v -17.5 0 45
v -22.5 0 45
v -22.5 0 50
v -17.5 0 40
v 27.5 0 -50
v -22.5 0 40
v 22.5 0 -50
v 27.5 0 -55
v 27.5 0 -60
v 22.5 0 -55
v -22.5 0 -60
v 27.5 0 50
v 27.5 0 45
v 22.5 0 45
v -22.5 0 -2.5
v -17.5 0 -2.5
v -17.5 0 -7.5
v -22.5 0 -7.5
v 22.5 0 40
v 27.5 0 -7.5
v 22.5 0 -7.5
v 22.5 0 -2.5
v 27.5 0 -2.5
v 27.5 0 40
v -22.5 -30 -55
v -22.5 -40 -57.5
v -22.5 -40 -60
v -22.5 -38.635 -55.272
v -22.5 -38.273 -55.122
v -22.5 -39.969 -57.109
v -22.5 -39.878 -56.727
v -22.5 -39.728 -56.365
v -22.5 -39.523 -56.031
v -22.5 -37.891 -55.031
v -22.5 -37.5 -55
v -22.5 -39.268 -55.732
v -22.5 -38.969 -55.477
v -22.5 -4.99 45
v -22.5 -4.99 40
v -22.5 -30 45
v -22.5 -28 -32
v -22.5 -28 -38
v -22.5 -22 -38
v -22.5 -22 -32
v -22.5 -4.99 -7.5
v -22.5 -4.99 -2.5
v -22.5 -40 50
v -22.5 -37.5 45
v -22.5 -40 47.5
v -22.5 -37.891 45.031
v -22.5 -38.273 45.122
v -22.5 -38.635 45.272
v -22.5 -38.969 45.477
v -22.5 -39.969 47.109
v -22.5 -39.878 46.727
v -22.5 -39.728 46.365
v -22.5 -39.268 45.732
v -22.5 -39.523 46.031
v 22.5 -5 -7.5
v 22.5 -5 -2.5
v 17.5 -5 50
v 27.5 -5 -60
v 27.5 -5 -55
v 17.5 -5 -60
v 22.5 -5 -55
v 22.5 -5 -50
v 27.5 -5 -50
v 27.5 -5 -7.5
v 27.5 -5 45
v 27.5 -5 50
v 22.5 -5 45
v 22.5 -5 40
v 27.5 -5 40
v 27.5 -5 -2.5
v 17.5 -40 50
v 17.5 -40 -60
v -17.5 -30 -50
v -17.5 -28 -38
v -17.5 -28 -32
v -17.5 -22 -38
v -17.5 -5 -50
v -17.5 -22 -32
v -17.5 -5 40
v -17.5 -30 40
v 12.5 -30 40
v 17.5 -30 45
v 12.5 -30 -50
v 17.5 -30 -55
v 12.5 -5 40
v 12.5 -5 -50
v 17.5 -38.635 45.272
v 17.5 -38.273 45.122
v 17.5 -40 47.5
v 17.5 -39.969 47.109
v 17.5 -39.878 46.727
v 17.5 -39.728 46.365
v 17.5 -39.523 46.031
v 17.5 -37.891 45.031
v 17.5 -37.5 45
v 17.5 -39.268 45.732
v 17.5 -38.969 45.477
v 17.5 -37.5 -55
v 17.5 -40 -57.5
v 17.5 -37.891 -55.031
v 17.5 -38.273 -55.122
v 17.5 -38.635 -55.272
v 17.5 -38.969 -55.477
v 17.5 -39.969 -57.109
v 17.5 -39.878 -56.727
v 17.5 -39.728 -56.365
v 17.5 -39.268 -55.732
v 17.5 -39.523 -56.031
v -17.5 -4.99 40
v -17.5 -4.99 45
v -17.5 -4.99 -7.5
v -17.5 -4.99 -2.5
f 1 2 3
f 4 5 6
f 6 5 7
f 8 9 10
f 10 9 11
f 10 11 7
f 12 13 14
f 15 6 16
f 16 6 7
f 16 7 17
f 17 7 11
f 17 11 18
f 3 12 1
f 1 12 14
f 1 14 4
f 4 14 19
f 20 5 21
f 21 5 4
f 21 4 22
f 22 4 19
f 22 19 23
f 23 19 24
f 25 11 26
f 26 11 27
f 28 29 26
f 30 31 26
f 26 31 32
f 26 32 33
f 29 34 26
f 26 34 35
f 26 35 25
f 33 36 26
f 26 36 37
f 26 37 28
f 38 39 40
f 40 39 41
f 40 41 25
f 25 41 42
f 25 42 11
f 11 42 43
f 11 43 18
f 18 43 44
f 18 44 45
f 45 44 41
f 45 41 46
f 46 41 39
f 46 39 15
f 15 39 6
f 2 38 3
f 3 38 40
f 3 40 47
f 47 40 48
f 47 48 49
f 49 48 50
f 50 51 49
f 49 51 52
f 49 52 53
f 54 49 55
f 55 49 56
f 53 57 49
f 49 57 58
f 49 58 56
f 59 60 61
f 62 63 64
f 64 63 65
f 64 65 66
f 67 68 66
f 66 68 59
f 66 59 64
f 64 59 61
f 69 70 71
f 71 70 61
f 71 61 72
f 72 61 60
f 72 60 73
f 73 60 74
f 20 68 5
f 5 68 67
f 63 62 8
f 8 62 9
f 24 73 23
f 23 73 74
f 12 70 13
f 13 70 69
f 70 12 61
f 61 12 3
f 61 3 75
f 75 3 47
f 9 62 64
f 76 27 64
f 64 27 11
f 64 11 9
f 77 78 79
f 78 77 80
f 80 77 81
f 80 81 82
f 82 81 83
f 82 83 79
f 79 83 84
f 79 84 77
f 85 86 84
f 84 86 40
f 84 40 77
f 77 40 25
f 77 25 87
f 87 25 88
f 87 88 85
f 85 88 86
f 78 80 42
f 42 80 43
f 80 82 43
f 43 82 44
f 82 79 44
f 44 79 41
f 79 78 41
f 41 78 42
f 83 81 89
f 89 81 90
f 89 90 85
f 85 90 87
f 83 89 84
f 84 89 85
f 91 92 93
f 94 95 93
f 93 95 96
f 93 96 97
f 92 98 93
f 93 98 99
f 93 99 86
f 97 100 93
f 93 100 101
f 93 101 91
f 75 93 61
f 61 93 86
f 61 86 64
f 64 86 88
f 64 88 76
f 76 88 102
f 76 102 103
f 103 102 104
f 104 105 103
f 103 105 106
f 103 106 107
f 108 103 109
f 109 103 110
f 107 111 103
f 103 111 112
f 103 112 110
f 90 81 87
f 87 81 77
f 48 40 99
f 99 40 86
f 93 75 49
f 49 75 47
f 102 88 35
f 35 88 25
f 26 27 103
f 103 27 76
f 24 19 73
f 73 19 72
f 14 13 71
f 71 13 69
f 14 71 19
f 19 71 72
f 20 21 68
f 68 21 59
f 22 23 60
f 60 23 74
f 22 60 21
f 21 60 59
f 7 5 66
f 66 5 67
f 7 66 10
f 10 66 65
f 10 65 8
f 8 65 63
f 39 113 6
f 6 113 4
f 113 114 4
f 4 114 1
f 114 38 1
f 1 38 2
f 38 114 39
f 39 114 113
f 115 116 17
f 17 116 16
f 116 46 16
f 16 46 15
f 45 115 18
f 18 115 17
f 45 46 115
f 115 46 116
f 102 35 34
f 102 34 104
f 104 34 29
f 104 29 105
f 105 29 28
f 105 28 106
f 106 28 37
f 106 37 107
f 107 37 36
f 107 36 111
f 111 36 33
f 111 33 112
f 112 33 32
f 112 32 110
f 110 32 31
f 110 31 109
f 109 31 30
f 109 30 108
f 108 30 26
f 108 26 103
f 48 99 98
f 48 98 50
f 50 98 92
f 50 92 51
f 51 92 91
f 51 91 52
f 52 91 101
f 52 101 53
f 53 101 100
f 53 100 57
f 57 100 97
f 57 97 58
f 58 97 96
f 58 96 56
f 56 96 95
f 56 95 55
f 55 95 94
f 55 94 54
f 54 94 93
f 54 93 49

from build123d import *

# Parameters (mm, degrees)
SKETCH2_W           = 50
SKETCH2_H           = 110
SKETCH2_W_2         = 40
SKETCH2_H_2         = 100
BOSS_EXTRUDE1_DEPTH = 30
SKETCH3_W           = 6
SKETCH3_H           = 6
CUT_EXTRUDE1_DEPTH  = 5
SKETCH2_4_W         = 40
SKETCH2_4_H         = 100
BOSS_EXTRUDE2_DEPTH = 5
CUT_EXTRUDE2_DEPTH  = 25
BOSS_EXTRUDE3_DEPTH = 25
SKETCH10_W          = 40
SKETCH10_H          = 5
BOSS_EXTRUDE4_DEPTH = 35
SKETCH11_W          = 5
SKETCH11_H          = 5
CUT_EXTRUDE5_DEPTH  = 6
SKETCH11_4_W        = 5
SKETCH11_4_H        = 5
CUT_EXTRUDE6_DEPTH  = 4.99
FILLET1_R           = 2.5


with BuildPart() as part:
    # Sketch2 → Boss-Extrude1 (new body)
    with BuildSketch(Plane(origin=(0, 0, 0), x_dir=(1, 0, 0), z_dir=(0, 1, 0))):
        with Locations((2.5, 5)):
            Rectangle(SKETCH2_W, SKETCH2_H)
        with Locations((2.5, 5)):
            Rectangle(SKETCH2_W_2, SKETCH2_H_2, mode=Mode.SUBTRACT)
    extrude(amount=-BOSS_EXTRUDE1_DEPTH)

    # Sketch3 → Cut-Extrude1 (cut)
    with BuildSketch(Plane.ZY.offset(22.5)):
        with Locations((-35, -25)):
            Rectangle(SKETCH3_W, SKETCH3_H)
    extrude(amount=-CUT_EXTRUDE1_DEPTH, mode=Mode.SUBTRACT)

    # Sketch2<4> → Boss-Extrude2 (add)
    with BuildSketch(Plane(origin=(0, 0, 0), x_dir=(1, 0, 0), z_dir=(0, 1, 0))):
        with Locations((2.5, 5)):
            Rectangle(SKETCH2_4_W, SKETCH2_4_H)
    extrude(amount=-BOSS_EXTRUDE2_DEPTH)

    # Sketch5 → Cut-Extrude2 (cut)
    with BuildSketch(Plane.XZ.offset(30)):
        Polygon((27.5, 50), (-22.5, 50), (-22.5, 45), (-17.5, 45), (17.5, 45), (22.5, 45), (22.5, -55), (17.5, -55), (-17.5, -55), (-22.5, -55), (-22.5, -60), (27.5, -60), align=None)
    extrude(amount=-CUT_EXTRUDE2_DEPTH, mode=Mode.SUBTRACT)

    # Sketch5<3> → Boss-Extrude3 (add)
    with BuildSketch(Plane.XZ.offset(30)):
        Polygon((17.5, 45), (-17.5, 45), (-17.5, 40), (12.5, 40), (12.5, -50), (-17.5, -50), (-17.5, -55), (17.5, -55), align=None)
    extrude(amount=-BOSS_EXTRUDE3_DEPTH)

    # Sketch10 → Boss-Extrude4 (add)
    with BuildSketch(Plane.XZ.offset(5)):
        with Locations((-2.5, 47.5)):
            Rectangle(SKETCH10_W, SKETCH10_H)
        with Locations((-2.5, -57.5)):
            Rectangle(SKETCH10_W, SKETCH10_H)
    extrude(amount=BOSS_EXTRUDE4_DEPTH)

    # Sketch11 → Cut-Extrude5 (cut)
    with BuildSketch(Plane(origin=(0, 0, 0), x_dir=(1, 0, 0), z_dir=(0, 1, 0))):
        with Locations((25, 52.5)):
            Rectangle(SKETCH11_W, SKETCH11_H)
        with Locations((25, 5)):
            Rectangle(SKETCH11_W, SKETCH11_H)
        with Locations((25, -42.5)):
            Rectangle(SKETCH11_W, SKETCH11_H)
    extrude(amount=-CUT_EXTRUDE5_DEPTH, mode=Mode.SUBTRACT)

    # Sketch11<4> → Cut-Extrude6 (cut)
    with BuildSketch(Plane(origin=(0, 0, 0), x_dir=(1, 0, 0), z_dir=(0, 1, 0))):
        with Locations((-20, 5)):
            Rectangle(SKETCH11_4_W, SKETCH11_4_H)
        with Locations((-20, -42.5)):
            Rectangle(SKETCH11_4_W, SKETCH11_4_H)
    extrude(amount=-CUT_EXTRUDE6_DEPTH, mode=Mode.SUBTRACT)

    # Fillet1
    fillet1_edges = [part.edges().sort_by_distance(p)[0] for p in [
        (-2.5, -40, -55),
        (-2.5, -40, 45),
    ]]
    fillet(fillet1_edges, radius=FILLET1_R)


solid = part.part
